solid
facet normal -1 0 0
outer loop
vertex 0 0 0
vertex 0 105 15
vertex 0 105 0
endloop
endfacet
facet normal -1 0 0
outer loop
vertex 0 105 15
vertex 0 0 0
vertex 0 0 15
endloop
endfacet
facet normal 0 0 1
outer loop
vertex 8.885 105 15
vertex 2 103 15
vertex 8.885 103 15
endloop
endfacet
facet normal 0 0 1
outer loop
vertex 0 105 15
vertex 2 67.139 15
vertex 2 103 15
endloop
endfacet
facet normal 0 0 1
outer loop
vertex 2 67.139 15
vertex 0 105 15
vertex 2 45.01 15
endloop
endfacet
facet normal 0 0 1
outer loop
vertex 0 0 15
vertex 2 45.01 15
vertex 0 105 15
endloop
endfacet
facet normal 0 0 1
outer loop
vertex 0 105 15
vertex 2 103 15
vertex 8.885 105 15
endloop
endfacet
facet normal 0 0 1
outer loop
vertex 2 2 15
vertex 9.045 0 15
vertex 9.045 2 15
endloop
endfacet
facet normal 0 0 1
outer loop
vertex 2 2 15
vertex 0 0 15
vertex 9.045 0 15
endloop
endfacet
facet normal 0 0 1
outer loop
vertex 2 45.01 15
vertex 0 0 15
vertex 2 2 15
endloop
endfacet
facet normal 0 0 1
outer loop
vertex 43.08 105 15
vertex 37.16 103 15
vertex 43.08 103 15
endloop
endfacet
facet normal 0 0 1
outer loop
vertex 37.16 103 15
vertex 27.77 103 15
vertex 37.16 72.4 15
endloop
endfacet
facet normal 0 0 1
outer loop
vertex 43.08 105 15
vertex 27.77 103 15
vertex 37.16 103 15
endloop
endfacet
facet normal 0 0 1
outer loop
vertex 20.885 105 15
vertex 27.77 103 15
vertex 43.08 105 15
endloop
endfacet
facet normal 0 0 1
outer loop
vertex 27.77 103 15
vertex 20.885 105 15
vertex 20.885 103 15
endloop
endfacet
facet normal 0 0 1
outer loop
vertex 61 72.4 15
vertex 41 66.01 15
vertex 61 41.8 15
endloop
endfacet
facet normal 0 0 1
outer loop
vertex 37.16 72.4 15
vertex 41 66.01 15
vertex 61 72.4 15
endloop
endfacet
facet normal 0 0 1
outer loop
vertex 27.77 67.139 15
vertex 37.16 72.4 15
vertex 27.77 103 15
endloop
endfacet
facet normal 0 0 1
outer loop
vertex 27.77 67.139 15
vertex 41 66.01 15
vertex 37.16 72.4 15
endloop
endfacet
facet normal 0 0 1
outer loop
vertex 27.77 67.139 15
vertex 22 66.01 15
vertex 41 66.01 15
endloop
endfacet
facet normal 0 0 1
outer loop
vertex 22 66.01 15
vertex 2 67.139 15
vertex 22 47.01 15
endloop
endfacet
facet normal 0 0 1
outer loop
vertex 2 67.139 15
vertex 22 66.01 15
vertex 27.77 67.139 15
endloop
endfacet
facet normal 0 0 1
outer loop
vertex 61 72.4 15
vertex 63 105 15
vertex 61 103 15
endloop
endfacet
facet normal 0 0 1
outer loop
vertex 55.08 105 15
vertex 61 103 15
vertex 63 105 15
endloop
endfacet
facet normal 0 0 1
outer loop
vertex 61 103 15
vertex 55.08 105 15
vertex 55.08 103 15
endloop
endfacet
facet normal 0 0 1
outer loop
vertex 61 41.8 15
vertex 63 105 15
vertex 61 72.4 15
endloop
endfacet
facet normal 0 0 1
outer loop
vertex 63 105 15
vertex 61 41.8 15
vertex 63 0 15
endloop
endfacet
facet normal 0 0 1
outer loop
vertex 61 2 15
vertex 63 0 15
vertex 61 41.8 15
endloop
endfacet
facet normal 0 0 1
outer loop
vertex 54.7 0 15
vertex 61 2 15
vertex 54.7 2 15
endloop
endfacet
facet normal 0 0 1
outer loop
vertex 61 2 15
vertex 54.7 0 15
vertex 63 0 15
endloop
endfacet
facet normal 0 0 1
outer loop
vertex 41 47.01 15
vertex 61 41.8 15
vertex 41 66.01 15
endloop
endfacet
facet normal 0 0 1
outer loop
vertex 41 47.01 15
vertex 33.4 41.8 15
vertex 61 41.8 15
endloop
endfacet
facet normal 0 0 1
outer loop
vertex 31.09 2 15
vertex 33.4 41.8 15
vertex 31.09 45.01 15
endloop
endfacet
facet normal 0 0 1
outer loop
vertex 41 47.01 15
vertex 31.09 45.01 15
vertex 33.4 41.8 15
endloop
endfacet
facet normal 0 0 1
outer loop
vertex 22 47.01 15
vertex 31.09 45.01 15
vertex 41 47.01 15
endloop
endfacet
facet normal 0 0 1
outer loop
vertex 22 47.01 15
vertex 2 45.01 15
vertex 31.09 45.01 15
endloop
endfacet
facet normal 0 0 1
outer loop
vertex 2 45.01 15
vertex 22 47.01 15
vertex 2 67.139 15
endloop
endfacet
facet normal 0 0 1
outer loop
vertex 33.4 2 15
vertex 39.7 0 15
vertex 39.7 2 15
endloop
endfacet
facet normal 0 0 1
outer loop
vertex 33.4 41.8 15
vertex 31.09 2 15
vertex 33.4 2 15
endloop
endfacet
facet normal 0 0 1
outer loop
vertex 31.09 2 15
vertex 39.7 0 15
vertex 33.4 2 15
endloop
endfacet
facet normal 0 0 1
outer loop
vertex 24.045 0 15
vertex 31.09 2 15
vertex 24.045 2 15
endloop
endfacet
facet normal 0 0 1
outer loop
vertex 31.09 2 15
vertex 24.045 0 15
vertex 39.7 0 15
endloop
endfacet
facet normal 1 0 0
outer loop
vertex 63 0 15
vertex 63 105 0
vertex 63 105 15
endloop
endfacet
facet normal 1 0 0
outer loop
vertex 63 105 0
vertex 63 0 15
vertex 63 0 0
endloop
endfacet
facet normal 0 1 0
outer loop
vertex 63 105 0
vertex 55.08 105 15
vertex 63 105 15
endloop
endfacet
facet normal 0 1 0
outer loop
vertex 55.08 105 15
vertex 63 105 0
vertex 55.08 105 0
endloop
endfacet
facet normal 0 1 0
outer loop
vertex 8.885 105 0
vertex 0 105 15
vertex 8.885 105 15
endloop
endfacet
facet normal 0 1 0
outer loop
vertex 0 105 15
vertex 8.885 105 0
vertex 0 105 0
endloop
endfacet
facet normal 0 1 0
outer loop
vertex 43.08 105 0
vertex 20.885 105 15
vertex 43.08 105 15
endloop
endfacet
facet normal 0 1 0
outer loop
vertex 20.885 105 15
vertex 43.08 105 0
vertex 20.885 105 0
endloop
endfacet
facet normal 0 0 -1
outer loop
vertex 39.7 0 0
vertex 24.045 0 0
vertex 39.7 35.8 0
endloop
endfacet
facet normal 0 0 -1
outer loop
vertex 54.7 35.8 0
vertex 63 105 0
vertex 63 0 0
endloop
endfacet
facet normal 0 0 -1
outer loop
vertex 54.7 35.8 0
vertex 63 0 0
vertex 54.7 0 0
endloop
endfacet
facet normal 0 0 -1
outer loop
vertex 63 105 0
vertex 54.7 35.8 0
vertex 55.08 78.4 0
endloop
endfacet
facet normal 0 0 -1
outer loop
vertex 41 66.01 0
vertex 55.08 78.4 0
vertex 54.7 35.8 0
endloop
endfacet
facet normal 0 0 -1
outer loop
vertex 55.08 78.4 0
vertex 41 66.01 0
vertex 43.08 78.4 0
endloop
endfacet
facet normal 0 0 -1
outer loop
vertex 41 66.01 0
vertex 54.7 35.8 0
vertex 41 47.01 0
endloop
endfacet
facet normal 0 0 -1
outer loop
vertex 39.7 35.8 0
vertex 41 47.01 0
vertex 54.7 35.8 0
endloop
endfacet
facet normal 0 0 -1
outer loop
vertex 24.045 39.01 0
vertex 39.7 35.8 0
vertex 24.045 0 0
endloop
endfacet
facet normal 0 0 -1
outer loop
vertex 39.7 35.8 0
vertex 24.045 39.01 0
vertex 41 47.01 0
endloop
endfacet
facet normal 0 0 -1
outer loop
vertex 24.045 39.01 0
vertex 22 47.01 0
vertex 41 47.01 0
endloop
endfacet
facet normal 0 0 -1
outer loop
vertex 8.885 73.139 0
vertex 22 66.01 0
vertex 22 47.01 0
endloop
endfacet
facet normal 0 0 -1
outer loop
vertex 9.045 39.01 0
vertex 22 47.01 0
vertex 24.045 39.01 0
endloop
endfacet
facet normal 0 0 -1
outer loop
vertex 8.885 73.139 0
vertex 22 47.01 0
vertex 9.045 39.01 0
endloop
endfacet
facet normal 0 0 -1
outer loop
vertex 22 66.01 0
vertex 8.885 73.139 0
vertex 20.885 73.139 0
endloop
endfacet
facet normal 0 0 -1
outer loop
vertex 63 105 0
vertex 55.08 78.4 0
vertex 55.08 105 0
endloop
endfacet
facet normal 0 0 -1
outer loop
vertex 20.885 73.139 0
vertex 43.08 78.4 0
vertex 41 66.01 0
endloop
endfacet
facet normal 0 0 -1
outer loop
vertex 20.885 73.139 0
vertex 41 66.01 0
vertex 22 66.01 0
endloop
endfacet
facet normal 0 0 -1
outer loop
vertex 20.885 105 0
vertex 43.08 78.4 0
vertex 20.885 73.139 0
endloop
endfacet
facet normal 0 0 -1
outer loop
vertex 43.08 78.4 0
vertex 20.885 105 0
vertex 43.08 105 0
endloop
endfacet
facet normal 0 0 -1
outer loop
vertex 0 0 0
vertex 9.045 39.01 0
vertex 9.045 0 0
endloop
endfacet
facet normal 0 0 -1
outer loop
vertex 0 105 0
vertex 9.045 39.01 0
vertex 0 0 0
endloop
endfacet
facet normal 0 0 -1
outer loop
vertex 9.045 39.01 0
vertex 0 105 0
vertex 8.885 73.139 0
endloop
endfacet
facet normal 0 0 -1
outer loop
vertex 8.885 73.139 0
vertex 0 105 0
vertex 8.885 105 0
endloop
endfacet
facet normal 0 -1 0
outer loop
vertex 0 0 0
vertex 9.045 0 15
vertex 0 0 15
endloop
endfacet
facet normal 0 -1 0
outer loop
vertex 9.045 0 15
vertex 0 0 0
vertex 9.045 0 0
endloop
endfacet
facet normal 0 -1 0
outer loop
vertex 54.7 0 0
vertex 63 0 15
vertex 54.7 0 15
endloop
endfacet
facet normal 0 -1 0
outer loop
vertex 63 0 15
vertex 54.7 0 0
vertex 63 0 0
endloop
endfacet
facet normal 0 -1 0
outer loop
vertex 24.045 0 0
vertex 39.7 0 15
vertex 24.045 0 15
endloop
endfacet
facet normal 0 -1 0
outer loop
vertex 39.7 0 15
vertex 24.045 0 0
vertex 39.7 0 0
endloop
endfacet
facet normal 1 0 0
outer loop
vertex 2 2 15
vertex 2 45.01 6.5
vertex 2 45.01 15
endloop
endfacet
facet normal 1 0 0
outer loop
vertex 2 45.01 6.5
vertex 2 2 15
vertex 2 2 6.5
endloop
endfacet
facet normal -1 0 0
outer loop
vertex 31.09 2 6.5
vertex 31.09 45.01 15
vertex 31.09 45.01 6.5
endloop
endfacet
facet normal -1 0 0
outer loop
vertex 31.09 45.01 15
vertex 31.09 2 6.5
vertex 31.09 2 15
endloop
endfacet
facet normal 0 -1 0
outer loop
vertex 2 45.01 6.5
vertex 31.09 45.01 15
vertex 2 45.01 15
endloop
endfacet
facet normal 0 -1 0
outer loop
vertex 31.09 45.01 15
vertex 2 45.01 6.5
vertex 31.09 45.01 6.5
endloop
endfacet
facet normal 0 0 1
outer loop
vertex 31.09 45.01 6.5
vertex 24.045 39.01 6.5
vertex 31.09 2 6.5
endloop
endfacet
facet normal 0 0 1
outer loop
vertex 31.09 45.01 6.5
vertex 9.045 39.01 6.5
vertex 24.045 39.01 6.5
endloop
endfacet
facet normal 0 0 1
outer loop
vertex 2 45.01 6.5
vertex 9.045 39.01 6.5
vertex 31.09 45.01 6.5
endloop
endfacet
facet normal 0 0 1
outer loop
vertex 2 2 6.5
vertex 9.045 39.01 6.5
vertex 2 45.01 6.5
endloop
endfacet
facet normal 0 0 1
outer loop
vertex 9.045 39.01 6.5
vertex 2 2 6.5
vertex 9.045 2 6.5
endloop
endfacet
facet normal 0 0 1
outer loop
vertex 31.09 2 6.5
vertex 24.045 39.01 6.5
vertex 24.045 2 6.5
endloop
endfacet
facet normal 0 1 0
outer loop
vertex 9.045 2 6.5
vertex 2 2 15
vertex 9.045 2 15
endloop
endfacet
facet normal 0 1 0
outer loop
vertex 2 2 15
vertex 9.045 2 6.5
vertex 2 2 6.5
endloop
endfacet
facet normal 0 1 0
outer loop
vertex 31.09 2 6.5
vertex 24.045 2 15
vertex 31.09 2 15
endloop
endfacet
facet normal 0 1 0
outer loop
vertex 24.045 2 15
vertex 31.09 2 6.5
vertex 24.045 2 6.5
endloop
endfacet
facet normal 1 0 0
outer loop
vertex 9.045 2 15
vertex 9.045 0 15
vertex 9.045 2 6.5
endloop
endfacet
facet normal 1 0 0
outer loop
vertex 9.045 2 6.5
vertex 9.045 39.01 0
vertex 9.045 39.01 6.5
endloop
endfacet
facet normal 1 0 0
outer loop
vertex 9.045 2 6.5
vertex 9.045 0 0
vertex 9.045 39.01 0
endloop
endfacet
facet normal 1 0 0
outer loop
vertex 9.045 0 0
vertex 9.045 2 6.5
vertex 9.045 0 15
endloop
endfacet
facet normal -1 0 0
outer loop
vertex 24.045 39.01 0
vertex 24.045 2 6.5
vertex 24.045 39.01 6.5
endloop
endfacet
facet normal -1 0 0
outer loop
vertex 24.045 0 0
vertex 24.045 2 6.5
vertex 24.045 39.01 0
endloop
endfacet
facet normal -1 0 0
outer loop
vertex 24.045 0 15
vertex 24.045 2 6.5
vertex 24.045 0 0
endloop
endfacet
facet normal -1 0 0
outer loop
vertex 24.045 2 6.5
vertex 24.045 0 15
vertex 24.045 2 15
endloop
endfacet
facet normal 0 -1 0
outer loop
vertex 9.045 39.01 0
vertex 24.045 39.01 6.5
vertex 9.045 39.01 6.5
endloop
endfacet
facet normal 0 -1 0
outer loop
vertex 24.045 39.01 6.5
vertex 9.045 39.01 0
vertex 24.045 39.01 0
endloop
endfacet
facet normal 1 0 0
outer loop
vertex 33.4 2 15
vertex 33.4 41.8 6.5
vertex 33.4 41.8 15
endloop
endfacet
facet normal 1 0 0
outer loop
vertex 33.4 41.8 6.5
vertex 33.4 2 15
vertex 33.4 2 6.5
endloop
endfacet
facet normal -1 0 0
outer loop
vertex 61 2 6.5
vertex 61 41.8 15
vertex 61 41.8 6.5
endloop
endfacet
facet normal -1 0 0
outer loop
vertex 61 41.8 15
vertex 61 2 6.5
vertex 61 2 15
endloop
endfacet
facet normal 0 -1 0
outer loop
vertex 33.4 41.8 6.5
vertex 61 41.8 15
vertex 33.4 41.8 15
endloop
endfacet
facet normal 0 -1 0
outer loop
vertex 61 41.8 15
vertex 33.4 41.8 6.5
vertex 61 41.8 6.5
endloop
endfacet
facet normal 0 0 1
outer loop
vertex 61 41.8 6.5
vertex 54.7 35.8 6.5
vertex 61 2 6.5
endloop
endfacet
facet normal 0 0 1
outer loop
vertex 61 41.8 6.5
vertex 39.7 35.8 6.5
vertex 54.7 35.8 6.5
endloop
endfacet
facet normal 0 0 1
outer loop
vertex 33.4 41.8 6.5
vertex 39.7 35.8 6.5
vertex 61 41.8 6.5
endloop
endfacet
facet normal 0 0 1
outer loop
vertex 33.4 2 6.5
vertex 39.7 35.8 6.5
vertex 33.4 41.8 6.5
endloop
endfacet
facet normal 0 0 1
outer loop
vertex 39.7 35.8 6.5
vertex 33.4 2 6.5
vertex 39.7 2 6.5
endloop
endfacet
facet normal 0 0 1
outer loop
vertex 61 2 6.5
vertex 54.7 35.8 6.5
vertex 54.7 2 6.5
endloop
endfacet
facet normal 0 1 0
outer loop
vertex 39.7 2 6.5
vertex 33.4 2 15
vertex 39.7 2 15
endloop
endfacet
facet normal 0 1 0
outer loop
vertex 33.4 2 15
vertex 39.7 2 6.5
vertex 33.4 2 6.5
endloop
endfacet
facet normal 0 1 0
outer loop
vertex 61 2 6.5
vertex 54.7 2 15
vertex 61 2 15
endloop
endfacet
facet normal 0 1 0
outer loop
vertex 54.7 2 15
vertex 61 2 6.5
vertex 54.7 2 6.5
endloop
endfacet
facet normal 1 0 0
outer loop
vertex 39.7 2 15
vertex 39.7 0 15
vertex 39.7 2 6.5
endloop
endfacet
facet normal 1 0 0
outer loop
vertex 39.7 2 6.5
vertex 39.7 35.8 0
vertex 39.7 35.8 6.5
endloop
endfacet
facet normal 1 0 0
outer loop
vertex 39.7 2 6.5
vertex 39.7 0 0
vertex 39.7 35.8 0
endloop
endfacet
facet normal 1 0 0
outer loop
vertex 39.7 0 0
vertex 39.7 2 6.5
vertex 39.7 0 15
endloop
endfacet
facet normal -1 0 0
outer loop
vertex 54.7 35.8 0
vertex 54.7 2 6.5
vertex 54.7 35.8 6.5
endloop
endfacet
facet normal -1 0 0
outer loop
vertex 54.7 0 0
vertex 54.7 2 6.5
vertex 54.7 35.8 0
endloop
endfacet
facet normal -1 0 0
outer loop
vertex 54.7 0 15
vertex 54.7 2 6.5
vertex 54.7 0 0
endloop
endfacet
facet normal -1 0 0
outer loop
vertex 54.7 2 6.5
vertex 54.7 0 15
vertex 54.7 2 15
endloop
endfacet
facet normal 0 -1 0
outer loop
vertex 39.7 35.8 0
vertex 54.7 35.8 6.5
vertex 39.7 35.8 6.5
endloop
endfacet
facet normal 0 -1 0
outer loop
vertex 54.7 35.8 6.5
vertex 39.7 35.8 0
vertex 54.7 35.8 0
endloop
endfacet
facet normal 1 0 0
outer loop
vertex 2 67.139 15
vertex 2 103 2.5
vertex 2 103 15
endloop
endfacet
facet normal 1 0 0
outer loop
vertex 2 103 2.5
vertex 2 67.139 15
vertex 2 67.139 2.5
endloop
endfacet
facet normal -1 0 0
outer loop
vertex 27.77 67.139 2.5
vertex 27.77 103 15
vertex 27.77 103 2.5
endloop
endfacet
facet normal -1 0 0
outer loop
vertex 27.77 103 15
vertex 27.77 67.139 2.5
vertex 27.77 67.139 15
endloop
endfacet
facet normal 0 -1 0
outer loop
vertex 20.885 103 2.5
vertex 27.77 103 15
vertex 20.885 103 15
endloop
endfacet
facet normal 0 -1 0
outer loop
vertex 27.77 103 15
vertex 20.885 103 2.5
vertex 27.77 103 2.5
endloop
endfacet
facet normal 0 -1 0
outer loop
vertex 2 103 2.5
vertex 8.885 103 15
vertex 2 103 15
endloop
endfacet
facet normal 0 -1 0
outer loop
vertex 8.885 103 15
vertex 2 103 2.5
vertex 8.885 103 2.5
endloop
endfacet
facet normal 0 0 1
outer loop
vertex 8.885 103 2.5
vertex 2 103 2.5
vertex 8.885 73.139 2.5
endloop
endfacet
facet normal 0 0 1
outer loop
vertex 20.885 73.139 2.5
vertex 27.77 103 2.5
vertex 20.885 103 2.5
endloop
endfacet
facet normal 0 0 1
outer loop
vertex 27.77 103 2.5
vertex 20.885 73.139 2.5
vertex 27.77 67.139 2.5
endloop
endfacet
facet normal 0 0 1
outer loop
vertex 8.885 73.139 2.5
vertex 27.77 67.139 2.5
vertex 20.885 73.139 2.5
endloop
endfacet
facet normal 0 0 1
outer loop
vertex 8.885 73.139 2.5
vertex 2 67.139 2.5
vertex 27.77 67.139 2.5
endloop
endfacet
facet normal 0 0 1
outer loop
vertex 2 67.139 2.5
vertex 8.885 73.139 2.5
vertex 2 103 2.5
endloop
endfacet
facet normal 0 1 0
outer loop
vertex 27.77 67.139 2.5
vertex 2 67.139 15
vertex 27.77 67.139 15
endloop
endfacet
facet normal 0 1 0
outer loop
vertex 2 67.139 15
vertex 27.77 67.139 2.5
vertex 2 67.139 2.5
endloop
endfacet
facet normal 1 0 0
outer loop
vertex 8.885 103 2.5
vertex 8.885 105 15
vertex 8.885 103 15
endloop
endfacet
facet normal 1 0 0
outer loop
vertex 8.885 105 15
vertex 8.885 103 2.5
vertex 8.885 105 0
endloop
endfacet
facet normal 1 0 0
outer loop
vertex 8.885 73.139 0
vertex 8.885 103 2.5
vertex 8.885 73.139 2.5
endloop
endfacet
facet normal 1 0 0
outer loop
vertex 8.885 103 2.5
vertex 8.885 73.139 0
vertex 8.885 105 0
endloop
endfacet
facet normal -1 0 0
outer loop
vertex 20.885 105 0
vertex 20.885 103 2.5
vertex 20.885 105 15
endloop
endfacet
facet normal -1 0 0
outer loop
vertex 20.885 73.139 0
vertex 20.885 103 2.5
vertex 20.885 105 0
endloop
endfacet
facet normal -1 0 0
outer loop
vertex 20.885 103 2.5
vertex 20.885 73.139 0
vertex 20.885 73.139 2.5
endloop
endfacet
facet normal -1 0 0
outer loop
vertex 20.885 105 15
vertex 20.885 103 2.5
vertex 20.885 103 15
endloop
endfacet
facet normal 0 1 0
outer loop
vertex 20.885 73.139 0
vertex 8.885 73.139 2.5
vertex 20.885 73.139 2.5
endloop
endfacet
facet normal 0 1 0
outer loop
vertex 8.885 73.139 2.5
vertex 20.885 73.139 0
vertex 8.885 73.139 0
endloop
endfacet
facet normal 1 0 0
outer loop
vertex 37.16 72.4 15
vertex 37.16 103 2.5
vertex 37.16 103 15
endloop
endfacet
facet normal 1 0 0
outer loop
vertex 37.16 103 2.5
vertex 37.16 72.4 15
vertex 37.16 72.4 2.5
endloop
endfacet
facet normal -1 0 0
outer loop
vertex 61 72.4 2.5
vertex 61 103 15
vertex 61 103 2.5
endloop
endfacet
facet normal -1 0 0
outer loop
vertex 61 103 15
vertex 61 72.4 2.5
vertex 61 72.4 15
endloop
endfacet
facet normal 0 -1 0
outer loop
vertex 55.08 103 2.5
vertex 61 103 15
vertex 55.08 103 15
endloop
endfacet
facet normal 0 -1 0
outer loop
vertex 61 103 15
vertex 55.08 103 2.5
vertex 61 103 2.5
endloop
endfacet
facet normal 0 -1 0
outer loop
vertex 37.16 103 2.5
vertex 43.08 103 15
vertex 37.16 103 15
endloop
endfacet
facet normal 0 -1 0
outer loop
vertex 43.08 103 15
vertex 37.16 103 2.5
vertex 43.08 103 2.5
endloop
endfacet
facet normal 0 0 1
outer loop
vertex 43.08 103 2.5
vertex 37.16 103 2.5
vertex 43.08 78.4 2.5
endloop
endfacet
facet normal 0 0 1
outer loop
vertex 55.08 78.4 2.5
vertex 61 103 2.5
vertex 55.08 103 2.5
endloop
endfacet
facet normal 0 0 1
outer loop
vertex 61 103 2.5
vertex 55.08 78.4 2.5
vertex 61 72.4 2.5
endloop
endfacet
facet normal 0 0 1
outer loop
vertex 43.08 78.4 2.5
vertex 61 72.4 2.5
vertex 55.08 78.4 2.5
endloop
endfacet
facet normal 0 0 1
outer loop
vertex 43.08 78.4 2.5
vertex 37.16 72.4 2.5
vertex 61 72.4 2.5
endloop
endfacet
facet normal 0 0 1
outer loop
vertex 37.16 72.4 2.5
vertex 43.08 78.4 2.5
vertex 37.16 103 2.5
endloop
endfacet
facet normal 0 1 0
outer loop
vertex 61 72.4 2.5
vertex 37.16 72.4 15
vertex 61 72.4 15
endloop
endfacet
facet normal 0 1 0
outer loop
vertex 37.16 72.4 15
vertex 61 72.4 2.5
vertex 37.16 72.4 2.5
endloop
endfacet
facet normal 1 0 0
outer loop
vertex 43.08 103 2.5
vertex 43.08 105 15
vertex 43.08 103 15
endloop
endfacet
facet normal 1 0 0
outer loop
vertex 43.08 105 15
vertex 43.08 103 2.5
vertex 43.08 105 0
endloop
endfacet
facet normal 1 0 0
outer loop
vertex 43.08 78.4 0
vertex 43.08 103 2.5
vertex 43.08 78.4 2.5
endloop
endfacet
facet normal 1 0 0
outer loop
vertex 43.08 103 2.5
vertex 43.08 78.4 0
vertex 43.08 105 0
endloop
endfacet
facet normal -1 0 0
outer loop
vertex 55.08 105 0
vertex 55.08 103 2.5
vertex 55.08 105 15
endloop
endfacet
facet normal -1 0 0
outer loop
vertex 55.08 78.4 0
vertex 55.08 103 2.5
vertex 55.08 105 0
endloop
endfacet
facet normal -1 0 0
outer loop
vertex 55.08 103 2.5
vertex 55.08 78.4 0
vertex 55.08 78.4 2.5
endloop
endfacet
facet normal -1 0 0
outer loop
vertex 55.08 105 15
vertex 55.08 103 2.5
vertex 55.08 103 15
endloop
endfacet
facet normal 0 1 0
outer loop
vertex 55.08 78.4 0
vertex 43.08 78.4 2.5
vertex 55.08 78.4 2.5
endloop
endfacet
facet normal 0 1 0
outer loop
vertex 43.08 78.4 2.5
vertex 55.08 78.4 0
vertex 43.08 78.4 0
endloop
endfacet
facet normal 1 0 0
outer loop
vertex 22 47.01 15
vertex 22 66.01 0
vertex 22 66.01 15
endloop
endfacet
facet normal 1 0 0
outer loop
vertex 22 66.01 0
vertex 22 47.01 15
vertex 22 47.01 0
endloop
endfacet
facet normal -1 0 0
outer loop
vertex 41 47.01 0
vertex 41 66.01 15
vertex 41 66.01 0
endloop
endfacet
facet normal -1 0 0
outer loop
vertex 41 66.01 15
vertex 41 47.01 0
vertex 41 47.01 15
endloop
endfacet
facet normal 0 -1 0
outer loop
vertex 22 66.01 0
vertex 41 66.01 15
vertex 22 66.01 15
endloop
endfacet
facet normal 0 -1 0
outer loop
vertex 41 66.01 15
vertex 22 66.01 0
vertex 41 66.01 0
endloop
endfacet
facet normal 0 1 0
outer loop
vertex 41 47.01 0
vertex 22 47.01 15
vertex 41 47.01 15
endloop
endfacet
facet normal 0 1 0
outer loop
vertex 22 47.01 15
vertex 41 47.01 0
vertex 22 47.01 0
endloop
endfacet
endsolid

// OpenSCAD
length = 63;
width = 105;
height = 15;

//Based on magnet size:
magnetBaseInnerDiameter = 19;
magnetHeight = 4.0;

//			savvas icestorm x 4, 42.01 x 28.09, base fullish
//			savvas lavaflow x 4, 38.8 x 26.6, base fullish
//			spitting drake x 6, 34.86 x 24.77, base 21.18
//			rending drake x 6, 29.60 x 22.84, base 20.29

//single token 2.0
magnetOffset = 43.01;

largeToken1Width = 42.01 + 1;
largeToken1Length = 28.09 + 1;
largeToken1Height = 8 + .5;
largeToken1SquareLipWidthRemainder = largeToken1Length - 15;
largeToken1SquareLipLengthRemainder = 4;

largeToken2Width = 38.8 + 1;
largeToken2Length = 26.6 + 1;
largeToken2Height = 8 + .5;
largeToken2SquareLipWidthRemainder = largeToken2Length - 15;
largeToken2SquareLipLengthRemainder = 4;

smallToken1Width = 34.861 + 1;
smallToken1Length = 24.77 + 1;
smallToken1Height = 12 + .5;
smallToken1SquareLipWidthRemainder = smallToken1Length - 12;
smallToken1SquareLipLengthRemainder = 4;

smallToken2Width = 29.60 + 1;
smallToken2Length = 22.84 + 1;
smallToken2Height = 12 + .5;
smallToken2SquareLipWidthRemainder = smallToken2Length - 12;
smallToken2SquareLipLengthRemainder = 4;

spaceBetweenCircles = 2;
wallThickness = spaceBetweenCircles;



difference(){
    cube([length, width, height]);


//----------------------------------
translate(
        [
            wallThickness,
            wallThickness,
            height - largeToken1Height
        ])
        cube([largeToken1Length,largeToken1Width, largeToken1Height]);
    translate([
        wallThickness + largeToken1SquareLipWidthRemainder/2,
        0,
        0])
        cube([
            largeToken1Length - largeToken1SquareLipWidthRemainder,
            largeToken1Width - largeToken1SquareLipLengthRemainder,
            height]);
    
translate(
        [
            length - (wallThickness + largeToken2Length),
            wallThickness,
            height - largeToken2Height
        ])
        cube([largeToken2Length,largeToken2Width, largeToken2Height]);
    translate([
        length - (wallThickness + (largeToken2Length - largeToken2SquareLipWidthRemainder) + largeToken2SquareLipWidthRemainder/2),
        0,
        0])
        cube([
            largeToken2Length - largeToken2SquareLipWidthRemainder,
            largeToken2Width - largeToken2SquareLipLengthRemainder,
            height]);

            
//---------------------------------------------------------------------
    
    translate(
        [
            wallThickness,
            width - (wallThickness + smallToken1Width),
            height - smallToken1Height
        ])
        cube([smallToken1Length,smallToken1Width, smallToken1Height]);
    translate([
        wallThickness + smallToken1SquareLipWidthRemainder/2,
        width - (smallToken1Width - smallToken1SquareLipLengthRemainder),
        0])
        cube([
            smallToken1Length - smallToken1SquareLipWidthRemainder,
            smallToken1Width - smallToken1SquareLipLengthRemainder,
            height]);

    translate(
        [
            length - (wallThickness + smallToken2Length),
            width - (wallThickness + smallToken2Width),
            height - smallToken2Height
        ])
        cube([smallToken2Length,smallToken2Width, smallToken2Height]);
    translate([
        length - (wallThickness + smallToken2Length) + smallToken2SquareLipWidthRemainder/2,
        width - (smallToken2Width - smallToken2SquareLipLengthRemainder),
        0])
        cube([
            smallToken2Length - smallToken2SquareLipWidthRemainder,
            smallToken2Width - smallToken2SquareLipLengthRemainder,
            height]);       

//----------------------------------------
   
    translate([length/2 - magnetBaseInnerDiameter/2, magnetOffset + wallThickness * 2, 0])
        cube([magnetBaseInnerDiameter, magnetBaseInnerDiameter, height]);
        

}
